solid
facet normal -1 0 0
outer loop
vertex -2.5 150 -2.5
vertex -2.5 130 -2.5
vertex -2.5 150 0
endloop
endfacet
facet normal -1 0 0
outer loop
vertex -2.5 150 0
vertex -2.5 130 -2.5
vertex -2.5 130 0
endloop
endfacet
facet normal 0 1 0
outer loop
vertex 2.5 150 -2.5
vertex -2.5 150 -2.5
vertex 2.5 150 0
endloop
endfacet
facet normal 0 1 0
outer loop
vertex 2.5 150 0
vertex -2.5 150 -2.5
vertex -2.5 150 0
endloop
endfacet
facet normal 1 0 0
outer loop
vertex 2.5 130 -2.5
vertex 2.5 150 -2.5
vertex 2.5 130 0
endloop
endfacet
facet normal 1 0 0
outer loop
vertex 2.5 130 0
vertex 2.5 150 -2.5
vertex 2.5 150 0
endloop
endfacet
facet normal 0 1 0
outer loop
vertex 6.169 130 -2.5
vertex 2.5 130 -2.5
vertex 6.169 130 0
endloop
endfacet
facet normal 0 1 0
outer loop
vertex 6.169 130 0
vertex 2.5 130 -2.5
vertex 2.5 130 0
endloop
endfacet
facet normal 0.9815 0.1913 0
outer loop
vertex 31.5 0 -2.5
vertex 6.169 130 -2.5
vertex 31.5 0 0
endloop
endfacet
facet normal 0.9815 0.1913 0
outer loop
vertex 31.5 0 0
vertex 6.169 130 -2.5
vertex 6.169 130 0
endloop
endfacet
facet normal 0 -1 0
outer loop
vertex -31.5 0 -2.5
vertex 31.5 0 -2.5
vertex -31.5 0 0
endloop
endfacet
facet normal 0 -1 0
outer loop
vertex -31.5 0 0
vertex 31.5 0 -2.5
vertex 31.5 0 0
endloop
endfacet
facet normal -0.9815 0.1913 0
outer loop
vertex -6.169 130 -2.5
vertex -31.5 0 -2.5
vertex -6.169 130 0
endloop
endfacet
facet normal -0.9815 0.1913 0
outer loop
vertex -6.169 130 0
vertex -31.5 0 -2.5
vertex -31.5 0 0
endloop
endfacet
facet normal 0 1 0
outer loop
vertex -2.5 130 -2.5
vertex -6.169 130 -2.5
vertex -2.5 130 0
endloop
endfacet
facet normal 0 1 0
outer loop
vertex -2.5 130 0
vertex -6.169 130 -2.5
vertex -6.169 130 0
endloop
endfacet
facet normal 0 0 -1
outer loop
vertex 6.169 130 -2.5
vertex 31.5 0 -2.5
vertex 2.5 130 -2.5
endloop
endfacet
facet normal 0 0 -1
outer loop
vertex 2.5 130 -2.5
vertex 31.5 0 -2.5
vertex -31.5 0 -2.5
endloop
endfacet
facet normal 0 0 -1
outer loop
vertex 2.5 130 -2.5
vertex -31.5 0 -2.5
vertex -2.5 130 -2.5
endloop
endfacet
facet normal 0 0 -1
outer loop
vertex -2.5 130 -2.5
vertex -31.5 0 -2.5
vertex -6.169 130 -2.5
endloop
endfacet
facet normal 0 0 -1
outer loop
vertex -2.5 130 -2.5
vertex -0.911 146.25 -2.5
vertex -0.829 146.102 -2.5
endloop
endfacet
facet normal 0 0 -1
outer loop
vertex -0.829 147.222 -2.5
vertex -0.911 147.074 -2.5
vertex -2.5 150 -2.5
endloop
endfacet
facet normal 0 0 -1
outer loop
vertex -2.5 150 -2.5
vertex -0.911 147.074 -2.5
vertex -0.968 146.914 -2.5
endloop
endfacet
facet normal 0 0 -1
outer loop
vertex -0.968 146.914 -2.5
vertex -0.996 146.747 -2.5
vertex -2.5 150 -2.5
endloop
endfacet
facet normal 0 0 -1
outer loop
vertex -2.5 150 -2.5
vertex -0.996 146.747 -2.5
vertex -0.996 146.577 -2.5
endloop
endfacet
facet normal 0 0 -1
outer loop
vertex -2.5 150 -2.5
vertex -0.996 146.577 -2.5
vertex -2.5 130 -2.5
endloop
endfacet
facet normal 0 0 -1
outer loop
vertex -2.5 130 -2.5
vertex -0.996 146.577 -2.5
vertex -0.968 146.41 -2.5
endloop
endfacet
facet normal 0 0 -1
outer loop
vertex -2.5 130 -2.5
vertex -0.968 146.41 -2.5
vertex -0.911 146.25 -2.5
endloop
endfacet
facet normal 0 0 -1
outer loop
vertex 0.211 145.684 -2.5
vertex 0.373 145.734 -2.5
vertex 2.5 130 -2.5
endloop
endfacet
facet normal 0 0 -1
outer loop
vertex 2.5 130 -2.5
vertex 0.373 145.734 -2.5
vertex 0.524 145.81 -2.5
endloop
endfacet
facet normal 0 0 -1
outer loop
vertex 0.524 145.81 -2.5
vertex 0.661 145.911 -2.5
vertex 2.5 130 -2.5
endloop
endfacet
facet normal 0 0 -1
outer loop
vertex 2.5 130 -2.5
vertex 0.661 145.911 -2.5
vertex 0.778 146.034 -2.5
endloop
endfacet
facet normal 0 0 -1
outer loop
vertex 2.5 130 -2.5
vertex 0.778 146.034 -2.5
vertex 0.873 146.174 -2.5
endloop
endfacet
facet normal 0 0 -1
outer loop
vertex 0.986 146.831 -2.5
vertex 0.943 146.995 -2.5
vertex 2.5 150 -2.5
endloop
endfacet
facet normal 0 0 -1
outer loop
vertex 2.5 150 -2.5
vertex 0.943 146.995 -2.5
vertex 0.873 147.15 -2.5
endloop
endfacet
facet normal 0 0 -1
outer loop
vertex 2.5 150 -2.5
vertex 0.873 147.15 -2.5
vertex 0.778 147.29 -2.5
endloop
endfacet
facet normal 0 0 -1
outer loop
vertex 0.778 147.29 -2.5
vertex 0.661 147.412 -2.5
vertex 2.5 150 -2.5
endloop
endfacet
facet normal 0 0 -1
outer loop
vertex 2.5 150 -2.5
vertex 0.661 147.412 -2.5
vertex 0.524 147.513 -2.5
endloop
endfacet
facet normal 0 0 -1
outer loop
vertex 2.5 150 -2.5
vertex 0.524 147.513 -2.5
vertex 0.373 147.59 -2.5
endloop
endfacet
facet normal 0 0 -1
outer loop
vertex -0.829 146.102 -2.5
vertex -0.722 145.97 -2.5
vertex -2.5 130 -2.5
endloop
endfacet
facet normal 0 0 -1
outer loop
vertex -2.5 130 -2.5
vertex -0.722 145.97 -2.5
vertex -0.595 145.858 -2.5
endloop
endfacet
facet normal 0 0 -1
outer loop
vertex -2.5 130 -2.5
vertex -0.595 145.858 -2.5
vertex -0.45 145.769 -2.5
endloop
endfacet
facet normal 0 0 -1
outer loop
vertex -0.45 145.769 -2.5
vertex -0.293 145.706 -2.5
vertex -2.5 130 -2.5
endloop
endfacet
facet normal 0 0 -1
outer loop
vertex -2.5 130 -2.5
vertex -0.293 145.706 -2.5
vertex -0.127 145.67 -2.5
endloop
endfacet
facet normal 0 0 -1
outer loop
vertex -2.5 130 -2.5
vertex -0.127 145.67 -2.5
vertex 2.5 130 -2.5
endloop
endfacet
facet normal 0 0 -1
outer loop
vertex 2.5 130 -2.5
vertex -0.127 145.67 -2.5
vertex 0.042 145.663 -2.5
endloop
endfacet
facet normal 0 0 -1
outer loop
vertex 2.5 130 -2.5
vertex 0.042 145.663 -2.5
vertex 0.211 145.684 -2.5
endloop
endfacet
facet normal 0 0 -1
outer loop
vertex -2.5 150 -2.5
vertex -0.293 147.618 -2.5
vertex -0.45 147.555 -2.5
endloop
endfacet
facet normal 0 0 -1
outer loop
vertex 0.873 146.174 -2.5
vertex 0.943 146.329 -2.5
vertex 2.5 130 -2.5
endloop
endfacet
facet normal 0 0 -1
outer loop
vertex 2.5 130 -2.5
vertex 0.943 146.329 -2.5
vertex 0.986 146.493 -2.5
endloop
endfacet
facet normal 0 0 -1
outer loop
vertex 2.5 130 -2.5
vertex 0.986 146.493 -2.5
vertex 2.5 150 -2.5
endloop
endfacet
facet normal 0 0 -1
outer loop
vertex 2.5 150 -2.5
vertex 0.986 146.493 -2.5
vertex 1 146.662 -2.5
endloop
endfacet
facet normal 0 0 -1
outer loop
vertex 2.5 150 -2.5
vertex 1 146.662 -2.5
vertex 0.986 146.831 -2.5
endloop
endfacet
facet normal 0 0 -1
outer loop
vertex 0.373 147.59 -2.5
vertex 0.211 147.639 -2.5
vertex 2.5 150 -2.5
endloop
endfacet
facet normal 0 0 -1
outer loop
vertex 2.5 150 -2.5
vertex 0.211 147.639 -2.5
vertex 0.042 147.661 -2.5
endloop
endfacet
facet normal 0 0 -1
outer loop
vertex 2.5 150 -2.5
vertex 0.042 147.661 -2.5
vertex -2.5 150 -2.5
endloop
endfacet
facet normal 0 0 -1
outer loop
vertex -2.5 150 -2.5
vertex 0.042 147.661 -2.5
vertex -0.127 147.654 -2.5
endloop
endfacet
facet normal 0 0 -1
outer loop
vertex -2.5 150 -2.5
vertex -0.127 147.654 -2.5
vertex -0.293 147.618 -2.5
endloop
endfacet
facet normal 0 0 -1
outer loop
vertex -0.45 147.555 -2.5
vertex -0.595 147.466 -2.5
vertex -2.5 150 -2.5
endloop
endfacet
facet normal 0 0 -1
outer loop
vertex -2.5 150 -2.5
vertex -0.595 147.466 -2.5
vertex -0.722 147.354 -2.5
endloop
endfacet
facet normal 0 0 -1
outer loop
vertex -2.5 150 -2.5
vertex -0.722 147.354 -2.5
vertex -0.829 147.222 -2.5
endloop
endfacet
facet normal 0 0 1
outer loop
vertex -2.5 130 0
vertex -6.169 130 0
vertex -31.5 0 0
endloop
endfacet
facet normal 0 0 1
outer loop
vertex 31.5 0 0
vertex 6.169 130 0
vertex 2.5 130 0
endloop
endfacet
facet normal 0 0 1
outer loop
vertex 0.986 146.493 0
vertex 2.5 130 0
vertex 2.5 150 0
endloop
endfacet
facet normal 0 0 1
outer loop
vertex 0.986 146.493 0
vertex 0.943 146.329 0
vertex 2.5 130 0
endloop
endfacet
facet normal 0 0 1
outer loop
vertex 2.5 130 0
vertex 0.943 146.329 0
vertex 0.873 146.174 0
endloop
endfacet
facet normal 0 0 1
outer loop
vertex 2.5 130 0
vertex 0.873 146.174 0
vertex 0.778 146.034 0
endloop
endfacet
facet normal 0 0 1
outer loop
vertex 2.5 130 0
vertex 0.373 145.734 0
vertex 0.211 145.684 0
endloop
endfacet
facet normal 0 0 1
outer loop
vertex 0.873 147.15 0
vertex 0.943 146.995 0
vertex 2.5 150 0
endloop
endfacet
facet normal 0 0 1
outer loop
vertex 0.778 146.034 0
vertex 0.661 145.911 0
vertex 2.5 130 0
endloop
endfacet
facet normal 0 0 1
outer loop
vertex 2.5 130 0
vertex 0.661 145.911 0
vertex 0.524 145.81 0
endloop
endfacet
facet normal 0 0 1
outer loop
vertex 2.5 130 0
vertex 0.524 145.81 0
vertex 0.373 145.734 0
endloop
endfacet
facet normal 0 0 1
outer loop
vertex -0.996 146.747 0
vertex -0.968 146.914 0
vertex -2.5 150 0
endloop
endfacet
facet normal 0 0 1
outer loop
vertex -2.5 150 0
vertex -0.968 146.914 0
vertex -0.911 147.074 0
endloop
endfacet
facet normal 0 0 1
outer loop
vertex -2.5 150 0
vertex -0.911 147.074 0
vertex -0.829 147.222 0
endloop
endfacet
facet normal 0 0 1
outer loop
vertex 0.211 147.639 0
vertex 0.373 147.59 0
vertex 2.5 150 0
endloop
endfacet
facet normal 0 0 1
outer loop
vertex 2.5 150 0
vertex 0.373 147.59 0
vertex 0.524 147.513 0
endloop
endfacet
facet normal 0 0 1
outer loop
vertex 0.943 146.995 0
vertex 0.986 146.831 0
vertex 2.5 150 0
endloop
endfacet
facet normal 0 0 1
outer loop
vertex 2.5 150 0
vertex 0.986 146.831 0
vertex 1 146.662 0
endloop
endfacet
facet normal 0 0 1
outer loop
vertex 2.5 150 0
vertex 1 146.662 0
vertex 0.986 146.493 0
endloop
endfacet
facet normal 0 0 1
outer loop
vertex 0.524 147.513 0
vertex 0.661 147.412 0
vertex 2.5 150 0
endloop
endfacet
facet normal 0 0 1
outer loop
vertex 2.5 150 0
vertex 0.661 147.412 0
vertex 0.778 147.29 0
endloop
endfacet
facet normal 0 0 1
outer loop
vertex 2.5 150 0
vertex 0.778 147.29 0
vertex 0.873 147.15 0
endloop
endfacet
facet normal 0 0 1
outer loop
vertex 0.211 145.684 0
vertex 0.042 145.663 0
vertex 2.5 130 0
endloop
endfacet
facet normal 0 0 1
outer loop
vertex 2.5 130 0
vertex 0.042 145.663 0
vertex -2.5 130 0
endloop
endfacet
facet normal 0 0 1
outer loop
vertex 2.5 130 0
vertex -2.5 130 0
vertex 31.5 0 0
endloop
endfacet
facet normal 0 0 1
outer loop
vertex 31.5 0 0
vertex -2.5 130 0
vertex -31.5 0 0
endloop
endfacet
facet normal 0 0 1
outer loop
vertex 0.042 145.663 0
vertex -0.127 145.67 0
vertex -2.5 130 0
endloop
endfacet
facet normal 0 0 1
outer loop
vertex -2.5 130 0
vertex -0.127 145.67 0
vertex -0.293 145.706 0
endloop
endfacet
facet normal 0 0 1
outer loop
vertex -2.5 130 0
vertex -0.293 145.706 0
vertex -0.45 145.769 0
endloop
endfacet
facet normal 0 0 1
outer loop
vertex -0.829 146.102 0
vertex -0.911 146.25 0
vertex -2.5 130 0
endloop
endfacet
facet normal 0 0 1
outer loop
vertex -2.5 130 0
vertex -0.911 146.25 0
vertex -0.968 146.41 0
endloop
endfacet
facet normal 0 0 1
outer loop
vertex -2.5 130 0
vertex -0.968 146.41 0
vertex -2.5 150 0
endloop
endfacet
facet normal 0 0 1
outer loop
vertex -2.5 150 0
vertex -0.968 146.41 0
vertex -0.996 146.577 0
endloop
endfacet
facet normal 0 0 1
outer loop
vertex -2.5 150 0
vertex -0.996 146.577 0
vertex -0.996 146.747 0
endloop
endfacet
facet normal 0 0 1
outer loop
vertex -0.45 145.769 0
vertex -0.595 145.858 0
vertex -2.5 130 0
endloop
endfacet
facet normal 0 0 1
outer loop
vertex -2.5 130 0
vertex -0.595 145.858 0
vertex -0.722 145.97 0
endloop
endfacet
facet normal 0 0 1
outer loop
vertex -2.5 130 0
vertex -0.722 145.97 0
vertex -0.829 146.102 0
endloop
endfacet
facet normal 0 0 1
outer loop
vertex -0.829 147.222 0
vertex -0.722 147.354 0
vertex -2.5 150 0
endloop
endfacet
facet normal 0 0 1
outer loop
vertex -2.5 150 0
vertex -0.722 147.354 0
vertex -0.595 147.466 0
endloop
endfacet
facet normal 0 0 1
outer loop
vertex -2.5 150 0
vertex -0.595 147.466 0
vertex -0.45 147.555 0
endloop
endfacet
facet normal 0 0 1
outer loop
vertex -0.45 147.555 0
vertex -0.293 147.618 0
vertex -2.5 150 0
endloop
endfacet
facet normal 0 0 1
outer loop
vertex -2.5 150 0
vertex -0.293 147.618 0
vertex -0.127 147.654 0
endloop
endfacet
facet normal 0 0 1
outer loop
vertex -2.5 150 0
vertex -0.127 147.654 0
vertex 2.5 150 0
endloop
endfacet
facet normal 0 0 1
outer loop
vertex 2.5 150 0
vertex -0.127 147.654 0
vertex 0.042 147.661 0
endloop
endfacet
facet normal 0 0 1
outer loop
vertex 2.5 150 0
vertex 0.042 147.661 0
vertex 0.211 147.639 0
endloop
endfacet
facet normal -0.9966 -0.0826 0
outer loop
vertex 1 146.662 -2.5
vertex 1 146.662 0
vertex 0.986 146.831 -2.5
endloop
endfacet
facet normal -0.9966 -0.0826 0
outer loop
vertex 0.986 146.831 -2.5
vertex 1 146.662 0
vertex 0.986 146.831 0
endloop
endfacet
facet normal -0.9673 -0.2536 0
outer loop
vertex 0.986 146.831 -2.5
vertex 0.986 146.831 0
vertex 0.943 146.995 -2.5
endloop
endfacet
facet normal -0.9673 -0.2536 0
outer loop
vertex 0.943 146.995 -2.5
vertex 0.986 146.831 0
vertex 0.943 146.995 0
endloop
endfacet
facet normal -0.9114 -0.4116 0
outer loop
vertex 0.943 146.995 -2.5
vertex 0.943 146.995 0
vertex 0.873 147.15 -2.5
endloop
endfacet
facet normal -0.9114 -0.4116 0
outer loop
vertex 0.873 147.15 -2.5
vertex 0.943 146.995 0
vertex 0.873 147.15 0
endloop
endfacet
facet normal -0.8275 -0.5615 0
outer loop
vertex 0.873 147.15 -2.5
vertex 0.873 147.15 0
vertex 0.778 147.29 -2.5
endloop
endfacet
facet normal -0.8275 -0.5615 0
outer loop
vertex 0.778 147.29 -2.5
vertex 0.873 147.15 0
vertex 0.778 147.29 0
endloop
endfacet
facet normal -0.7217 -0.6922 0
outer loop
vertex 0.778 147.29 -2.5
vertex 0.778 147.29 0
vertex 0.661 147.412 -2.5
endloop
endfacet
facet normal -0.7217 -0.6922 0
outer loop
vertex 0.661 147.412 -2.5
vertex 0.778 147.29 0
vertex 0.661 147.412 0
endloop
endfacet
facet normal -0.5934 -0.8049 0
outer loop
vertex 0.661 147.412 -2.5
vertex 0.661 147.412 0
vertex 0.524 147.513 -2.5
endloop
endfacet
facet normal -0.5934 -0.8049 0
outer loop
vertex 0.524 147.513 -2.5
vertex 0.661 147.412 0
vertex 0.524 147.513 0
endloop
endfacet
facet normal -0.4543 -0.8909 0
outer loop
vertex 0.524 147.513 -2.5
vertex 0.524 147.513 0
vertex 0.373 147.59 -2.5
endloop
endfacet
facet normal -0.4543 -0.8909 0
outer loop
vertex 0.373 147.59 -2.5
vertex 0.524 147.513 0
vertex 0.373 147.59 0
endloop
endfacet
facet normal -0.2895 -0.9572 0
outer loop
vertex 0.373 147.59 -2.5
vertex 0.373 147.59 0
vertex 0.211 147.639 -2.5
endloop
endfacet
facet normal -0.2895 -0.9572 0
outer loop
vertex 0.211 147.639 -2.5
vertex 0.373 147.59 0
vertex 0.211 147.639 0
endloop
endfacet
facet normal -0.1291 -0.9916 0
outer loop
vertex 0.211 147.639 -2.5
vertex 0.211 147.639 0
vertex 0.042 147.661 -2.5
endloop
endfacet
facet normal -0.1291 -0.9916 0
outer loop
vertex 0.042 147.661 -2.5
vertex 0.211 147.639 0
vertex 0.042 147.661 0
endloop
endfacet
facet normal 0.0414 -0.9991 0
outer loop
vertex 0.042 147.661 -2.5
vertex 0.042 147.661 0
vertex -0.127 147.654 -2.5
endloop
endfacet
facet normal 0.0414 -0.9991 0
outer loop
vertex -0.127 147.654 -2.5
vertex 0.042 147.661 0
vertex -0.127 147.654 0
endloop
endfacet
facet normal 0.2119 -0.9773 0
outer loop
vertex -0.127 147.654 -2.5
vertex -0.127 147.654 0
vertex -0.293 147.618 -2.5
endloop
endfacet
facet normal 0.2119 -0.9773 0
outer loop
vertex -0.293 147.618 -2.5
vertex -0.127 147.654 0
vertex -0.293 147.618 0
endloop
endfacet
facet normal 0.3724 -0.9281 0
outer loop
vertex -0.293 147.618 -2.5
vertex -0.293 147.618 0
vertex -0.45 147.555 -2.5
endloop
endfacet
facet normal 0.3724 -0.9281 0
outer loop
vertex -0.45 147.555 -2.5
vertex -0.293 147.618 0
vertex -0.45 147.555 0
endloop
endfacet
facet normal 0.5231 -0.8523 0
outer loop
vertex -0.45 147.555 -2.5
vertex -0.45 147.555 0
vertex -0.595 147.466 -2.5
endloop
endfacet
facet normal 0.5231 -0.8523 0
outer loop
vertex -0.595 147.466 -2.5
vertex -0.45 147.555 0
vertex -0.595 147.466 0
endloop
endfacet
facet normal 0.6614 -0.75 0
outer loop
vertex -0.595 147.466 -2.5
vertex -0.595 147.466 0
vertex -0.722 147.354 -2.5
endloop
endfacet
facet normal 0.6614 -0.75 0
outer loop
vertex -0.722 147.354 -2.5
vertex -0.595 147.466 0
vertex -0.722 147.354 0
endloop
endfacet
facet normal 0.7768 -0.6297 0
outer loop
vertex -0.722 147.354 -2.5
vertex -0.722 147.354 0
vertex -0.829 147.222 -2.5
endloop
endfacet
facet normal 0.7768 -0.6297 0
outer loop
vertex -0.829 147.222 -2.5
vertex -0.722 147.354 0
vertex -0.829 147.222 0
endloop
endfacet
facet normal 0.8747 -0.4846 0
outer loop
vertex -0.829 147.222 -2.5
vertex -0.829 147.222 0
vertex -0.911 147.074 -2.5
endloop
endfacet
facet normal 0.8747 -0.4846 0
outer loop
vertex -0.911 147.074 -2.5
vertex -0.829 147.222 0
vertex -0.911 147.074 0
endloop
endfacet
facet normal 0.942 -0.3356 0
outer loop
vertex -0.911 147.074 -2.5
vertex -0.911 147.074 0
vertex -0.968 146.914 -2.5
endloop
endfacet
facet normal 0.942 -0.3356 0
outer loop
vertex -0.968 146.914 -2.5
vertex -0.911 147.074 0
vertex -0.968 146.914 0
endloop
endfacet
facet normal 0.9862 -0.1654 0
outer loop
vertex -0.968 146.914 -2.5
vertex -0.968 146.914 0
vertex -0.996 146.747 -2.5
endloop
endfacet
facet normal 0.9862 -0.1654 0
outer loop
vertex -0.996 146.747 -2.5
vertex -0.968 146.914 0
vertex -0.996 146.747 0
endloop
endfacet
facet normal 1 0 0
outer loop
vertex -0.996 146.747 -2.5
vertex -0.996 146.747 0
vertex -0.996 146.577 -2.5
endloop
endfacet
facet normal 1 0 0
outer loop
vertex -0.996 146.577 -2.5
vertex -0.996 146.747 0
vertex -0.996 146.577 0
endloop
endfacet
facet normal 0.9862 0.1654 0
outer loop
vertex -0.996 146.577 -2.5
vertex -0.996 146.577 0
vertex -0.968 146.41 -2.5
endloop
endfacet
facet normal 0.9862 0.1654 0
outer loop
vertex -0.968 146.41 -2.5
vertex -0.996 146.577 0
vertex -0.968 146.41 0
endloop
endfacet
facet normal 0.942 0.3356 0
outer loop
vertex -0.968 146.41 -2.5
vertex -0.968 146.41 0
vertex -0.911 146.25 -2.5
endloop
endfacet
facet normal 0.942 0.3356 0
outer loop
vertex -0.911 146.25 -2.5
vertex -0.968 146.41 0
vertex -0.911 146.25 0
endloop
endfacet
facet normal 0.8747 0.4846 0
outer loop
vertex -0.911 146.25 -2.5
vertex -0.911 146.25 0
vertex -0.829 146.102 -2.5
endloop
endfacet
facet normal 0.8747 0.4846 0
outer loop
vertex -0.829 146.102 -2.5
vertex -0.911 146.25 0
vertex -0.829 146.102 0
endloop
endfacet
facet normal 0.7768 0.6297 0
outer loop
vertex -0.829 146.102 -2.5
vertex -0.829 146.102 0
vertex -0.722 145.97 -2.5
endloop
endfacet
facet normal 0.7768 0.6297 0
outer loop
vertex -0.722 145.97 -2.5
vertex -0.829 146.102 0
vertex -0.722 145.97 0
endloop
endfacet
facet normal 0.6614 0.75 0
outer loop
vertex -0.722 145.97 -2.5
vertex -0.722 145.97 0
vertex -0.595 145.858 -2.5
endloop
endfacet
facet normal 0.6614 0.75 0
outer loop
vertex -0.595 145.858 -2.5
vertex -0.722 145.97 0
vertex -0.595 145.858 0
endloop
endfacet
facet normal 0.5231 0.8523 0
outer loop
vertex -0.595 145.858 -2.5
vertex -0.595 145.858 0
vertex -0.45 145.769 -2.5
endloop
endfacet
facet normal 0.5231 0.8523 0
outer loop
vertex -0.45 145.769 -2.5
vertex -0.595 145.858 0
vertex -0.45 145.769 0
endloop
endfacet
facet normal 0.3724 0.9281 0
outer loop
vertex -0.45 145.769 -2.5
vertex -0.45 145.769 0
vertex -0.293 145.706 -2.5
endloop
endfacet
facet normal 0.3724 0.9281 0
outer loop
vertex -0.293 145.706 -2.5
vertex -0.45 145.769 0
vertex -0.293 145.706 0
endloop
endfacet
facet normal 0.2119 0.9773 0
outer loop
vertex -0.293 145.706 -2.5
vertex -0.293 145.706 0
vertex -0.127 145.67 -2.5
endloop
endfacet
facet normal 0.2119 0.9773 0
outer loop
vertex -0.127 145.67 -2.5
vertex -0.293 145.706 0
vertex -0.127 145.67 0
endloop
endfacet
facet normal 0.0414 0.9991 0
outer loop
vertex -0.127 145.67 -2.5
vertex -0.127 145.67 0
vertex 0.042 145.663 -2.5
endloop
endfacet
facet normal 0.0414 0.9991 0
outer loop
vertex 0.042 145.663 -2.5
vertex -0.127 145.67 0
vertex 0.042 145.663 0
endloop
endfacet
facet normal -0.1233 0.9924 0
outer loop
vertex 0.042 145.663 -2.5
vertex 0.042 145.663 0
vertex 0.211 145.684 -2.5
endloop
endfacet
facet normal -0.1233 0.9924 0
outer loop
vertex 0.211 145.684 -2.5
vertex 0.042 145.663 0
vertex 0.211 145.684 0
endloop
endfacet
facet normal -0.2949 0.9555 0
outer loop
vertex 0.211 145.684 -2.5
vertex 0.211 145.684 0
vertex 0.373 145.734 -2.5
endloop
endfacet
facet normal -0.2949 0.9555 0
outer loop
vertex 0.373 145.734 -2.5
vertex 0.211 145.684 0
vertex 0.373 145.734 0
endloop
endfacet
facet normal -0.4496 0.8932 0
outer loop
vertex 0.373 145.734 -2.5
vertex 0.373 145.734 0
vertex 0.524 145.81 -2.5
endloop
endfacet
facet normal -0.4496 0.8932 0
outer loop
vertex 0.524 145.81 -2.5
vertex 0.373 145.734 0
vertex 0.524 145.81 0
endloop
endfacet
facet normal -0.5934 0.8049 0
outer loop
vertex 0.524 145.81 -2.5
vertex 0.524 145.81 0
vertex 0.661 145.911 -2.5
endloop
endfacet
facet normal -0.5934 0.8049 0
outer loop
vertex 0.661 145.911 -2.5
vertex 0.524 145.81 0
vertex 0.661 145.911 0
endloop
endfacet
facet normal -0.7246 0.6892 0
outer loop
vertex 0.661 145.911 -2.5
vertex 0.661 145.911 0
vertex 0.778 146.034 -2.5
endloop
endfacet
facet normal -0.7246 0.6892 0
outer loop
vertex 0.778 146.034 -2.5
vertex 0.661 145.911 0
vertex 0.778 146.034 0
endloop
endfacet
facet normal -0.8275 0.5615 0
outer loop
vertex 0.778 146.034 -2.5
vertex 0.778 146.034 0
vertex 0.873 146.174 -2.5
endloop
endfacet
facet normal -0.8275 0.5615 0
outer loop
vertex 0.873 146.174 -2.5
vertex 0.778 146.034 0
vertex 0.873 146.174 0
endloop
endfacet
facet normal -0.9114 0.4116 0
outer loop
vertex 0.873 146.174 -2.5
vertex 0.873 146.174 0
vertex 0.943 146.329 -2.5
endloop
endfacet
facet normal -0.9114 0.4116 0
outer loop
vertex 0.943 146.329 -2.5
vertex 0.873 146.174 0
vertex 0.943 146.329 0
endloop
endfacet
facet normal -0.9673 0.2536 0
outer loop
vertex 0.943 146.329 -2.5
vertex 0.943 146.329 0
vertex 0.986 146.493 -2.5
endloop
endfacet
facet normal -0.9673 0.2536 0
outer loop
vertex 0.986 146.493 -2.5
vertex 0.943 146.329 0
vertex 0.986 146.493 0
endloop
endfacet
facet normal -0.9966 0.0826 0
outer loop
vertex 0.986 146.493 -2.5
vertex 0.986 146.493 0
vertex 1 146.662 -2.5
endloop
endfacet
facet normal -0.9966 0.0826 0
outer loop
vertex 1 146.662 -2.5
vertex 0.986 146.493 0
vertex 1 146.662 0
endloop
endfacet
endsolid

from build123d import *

# Parameters (mm, degrees)
BASE_FLANGE1_DEPTH = 2.5
SKETCH8_R          = 1
CUT_EXTRUDE1_DEPTH = 10


# Sheet-metal steps are written as plain solids
with BuildPart() as part:
    # Sketch1 → Base-Flange1 (new body)
    with BuildSketch(Plane.XY):
        Polygon((-31.5, 0), (31.5, 0), (6.169112777, 130), (2.5, 130), (2.5, 150), (-2.5, 150), (-2.5, 130), (-6.169112777, 130), align=None)
    extrude(amount=-BASE_FLANGE1_DEPTH)

    # Sketch8 → Cut-Extrude1 (cut)
    with BuildSketch(Plane.XY):
        with Locations((0, 146.661825485)):
            Circle(SKETCH8_R)
    extrude(amount=-CUT_EXTRUDE1_DEPTH, mode=Mode.SUBTRACT)


solid = part.part
